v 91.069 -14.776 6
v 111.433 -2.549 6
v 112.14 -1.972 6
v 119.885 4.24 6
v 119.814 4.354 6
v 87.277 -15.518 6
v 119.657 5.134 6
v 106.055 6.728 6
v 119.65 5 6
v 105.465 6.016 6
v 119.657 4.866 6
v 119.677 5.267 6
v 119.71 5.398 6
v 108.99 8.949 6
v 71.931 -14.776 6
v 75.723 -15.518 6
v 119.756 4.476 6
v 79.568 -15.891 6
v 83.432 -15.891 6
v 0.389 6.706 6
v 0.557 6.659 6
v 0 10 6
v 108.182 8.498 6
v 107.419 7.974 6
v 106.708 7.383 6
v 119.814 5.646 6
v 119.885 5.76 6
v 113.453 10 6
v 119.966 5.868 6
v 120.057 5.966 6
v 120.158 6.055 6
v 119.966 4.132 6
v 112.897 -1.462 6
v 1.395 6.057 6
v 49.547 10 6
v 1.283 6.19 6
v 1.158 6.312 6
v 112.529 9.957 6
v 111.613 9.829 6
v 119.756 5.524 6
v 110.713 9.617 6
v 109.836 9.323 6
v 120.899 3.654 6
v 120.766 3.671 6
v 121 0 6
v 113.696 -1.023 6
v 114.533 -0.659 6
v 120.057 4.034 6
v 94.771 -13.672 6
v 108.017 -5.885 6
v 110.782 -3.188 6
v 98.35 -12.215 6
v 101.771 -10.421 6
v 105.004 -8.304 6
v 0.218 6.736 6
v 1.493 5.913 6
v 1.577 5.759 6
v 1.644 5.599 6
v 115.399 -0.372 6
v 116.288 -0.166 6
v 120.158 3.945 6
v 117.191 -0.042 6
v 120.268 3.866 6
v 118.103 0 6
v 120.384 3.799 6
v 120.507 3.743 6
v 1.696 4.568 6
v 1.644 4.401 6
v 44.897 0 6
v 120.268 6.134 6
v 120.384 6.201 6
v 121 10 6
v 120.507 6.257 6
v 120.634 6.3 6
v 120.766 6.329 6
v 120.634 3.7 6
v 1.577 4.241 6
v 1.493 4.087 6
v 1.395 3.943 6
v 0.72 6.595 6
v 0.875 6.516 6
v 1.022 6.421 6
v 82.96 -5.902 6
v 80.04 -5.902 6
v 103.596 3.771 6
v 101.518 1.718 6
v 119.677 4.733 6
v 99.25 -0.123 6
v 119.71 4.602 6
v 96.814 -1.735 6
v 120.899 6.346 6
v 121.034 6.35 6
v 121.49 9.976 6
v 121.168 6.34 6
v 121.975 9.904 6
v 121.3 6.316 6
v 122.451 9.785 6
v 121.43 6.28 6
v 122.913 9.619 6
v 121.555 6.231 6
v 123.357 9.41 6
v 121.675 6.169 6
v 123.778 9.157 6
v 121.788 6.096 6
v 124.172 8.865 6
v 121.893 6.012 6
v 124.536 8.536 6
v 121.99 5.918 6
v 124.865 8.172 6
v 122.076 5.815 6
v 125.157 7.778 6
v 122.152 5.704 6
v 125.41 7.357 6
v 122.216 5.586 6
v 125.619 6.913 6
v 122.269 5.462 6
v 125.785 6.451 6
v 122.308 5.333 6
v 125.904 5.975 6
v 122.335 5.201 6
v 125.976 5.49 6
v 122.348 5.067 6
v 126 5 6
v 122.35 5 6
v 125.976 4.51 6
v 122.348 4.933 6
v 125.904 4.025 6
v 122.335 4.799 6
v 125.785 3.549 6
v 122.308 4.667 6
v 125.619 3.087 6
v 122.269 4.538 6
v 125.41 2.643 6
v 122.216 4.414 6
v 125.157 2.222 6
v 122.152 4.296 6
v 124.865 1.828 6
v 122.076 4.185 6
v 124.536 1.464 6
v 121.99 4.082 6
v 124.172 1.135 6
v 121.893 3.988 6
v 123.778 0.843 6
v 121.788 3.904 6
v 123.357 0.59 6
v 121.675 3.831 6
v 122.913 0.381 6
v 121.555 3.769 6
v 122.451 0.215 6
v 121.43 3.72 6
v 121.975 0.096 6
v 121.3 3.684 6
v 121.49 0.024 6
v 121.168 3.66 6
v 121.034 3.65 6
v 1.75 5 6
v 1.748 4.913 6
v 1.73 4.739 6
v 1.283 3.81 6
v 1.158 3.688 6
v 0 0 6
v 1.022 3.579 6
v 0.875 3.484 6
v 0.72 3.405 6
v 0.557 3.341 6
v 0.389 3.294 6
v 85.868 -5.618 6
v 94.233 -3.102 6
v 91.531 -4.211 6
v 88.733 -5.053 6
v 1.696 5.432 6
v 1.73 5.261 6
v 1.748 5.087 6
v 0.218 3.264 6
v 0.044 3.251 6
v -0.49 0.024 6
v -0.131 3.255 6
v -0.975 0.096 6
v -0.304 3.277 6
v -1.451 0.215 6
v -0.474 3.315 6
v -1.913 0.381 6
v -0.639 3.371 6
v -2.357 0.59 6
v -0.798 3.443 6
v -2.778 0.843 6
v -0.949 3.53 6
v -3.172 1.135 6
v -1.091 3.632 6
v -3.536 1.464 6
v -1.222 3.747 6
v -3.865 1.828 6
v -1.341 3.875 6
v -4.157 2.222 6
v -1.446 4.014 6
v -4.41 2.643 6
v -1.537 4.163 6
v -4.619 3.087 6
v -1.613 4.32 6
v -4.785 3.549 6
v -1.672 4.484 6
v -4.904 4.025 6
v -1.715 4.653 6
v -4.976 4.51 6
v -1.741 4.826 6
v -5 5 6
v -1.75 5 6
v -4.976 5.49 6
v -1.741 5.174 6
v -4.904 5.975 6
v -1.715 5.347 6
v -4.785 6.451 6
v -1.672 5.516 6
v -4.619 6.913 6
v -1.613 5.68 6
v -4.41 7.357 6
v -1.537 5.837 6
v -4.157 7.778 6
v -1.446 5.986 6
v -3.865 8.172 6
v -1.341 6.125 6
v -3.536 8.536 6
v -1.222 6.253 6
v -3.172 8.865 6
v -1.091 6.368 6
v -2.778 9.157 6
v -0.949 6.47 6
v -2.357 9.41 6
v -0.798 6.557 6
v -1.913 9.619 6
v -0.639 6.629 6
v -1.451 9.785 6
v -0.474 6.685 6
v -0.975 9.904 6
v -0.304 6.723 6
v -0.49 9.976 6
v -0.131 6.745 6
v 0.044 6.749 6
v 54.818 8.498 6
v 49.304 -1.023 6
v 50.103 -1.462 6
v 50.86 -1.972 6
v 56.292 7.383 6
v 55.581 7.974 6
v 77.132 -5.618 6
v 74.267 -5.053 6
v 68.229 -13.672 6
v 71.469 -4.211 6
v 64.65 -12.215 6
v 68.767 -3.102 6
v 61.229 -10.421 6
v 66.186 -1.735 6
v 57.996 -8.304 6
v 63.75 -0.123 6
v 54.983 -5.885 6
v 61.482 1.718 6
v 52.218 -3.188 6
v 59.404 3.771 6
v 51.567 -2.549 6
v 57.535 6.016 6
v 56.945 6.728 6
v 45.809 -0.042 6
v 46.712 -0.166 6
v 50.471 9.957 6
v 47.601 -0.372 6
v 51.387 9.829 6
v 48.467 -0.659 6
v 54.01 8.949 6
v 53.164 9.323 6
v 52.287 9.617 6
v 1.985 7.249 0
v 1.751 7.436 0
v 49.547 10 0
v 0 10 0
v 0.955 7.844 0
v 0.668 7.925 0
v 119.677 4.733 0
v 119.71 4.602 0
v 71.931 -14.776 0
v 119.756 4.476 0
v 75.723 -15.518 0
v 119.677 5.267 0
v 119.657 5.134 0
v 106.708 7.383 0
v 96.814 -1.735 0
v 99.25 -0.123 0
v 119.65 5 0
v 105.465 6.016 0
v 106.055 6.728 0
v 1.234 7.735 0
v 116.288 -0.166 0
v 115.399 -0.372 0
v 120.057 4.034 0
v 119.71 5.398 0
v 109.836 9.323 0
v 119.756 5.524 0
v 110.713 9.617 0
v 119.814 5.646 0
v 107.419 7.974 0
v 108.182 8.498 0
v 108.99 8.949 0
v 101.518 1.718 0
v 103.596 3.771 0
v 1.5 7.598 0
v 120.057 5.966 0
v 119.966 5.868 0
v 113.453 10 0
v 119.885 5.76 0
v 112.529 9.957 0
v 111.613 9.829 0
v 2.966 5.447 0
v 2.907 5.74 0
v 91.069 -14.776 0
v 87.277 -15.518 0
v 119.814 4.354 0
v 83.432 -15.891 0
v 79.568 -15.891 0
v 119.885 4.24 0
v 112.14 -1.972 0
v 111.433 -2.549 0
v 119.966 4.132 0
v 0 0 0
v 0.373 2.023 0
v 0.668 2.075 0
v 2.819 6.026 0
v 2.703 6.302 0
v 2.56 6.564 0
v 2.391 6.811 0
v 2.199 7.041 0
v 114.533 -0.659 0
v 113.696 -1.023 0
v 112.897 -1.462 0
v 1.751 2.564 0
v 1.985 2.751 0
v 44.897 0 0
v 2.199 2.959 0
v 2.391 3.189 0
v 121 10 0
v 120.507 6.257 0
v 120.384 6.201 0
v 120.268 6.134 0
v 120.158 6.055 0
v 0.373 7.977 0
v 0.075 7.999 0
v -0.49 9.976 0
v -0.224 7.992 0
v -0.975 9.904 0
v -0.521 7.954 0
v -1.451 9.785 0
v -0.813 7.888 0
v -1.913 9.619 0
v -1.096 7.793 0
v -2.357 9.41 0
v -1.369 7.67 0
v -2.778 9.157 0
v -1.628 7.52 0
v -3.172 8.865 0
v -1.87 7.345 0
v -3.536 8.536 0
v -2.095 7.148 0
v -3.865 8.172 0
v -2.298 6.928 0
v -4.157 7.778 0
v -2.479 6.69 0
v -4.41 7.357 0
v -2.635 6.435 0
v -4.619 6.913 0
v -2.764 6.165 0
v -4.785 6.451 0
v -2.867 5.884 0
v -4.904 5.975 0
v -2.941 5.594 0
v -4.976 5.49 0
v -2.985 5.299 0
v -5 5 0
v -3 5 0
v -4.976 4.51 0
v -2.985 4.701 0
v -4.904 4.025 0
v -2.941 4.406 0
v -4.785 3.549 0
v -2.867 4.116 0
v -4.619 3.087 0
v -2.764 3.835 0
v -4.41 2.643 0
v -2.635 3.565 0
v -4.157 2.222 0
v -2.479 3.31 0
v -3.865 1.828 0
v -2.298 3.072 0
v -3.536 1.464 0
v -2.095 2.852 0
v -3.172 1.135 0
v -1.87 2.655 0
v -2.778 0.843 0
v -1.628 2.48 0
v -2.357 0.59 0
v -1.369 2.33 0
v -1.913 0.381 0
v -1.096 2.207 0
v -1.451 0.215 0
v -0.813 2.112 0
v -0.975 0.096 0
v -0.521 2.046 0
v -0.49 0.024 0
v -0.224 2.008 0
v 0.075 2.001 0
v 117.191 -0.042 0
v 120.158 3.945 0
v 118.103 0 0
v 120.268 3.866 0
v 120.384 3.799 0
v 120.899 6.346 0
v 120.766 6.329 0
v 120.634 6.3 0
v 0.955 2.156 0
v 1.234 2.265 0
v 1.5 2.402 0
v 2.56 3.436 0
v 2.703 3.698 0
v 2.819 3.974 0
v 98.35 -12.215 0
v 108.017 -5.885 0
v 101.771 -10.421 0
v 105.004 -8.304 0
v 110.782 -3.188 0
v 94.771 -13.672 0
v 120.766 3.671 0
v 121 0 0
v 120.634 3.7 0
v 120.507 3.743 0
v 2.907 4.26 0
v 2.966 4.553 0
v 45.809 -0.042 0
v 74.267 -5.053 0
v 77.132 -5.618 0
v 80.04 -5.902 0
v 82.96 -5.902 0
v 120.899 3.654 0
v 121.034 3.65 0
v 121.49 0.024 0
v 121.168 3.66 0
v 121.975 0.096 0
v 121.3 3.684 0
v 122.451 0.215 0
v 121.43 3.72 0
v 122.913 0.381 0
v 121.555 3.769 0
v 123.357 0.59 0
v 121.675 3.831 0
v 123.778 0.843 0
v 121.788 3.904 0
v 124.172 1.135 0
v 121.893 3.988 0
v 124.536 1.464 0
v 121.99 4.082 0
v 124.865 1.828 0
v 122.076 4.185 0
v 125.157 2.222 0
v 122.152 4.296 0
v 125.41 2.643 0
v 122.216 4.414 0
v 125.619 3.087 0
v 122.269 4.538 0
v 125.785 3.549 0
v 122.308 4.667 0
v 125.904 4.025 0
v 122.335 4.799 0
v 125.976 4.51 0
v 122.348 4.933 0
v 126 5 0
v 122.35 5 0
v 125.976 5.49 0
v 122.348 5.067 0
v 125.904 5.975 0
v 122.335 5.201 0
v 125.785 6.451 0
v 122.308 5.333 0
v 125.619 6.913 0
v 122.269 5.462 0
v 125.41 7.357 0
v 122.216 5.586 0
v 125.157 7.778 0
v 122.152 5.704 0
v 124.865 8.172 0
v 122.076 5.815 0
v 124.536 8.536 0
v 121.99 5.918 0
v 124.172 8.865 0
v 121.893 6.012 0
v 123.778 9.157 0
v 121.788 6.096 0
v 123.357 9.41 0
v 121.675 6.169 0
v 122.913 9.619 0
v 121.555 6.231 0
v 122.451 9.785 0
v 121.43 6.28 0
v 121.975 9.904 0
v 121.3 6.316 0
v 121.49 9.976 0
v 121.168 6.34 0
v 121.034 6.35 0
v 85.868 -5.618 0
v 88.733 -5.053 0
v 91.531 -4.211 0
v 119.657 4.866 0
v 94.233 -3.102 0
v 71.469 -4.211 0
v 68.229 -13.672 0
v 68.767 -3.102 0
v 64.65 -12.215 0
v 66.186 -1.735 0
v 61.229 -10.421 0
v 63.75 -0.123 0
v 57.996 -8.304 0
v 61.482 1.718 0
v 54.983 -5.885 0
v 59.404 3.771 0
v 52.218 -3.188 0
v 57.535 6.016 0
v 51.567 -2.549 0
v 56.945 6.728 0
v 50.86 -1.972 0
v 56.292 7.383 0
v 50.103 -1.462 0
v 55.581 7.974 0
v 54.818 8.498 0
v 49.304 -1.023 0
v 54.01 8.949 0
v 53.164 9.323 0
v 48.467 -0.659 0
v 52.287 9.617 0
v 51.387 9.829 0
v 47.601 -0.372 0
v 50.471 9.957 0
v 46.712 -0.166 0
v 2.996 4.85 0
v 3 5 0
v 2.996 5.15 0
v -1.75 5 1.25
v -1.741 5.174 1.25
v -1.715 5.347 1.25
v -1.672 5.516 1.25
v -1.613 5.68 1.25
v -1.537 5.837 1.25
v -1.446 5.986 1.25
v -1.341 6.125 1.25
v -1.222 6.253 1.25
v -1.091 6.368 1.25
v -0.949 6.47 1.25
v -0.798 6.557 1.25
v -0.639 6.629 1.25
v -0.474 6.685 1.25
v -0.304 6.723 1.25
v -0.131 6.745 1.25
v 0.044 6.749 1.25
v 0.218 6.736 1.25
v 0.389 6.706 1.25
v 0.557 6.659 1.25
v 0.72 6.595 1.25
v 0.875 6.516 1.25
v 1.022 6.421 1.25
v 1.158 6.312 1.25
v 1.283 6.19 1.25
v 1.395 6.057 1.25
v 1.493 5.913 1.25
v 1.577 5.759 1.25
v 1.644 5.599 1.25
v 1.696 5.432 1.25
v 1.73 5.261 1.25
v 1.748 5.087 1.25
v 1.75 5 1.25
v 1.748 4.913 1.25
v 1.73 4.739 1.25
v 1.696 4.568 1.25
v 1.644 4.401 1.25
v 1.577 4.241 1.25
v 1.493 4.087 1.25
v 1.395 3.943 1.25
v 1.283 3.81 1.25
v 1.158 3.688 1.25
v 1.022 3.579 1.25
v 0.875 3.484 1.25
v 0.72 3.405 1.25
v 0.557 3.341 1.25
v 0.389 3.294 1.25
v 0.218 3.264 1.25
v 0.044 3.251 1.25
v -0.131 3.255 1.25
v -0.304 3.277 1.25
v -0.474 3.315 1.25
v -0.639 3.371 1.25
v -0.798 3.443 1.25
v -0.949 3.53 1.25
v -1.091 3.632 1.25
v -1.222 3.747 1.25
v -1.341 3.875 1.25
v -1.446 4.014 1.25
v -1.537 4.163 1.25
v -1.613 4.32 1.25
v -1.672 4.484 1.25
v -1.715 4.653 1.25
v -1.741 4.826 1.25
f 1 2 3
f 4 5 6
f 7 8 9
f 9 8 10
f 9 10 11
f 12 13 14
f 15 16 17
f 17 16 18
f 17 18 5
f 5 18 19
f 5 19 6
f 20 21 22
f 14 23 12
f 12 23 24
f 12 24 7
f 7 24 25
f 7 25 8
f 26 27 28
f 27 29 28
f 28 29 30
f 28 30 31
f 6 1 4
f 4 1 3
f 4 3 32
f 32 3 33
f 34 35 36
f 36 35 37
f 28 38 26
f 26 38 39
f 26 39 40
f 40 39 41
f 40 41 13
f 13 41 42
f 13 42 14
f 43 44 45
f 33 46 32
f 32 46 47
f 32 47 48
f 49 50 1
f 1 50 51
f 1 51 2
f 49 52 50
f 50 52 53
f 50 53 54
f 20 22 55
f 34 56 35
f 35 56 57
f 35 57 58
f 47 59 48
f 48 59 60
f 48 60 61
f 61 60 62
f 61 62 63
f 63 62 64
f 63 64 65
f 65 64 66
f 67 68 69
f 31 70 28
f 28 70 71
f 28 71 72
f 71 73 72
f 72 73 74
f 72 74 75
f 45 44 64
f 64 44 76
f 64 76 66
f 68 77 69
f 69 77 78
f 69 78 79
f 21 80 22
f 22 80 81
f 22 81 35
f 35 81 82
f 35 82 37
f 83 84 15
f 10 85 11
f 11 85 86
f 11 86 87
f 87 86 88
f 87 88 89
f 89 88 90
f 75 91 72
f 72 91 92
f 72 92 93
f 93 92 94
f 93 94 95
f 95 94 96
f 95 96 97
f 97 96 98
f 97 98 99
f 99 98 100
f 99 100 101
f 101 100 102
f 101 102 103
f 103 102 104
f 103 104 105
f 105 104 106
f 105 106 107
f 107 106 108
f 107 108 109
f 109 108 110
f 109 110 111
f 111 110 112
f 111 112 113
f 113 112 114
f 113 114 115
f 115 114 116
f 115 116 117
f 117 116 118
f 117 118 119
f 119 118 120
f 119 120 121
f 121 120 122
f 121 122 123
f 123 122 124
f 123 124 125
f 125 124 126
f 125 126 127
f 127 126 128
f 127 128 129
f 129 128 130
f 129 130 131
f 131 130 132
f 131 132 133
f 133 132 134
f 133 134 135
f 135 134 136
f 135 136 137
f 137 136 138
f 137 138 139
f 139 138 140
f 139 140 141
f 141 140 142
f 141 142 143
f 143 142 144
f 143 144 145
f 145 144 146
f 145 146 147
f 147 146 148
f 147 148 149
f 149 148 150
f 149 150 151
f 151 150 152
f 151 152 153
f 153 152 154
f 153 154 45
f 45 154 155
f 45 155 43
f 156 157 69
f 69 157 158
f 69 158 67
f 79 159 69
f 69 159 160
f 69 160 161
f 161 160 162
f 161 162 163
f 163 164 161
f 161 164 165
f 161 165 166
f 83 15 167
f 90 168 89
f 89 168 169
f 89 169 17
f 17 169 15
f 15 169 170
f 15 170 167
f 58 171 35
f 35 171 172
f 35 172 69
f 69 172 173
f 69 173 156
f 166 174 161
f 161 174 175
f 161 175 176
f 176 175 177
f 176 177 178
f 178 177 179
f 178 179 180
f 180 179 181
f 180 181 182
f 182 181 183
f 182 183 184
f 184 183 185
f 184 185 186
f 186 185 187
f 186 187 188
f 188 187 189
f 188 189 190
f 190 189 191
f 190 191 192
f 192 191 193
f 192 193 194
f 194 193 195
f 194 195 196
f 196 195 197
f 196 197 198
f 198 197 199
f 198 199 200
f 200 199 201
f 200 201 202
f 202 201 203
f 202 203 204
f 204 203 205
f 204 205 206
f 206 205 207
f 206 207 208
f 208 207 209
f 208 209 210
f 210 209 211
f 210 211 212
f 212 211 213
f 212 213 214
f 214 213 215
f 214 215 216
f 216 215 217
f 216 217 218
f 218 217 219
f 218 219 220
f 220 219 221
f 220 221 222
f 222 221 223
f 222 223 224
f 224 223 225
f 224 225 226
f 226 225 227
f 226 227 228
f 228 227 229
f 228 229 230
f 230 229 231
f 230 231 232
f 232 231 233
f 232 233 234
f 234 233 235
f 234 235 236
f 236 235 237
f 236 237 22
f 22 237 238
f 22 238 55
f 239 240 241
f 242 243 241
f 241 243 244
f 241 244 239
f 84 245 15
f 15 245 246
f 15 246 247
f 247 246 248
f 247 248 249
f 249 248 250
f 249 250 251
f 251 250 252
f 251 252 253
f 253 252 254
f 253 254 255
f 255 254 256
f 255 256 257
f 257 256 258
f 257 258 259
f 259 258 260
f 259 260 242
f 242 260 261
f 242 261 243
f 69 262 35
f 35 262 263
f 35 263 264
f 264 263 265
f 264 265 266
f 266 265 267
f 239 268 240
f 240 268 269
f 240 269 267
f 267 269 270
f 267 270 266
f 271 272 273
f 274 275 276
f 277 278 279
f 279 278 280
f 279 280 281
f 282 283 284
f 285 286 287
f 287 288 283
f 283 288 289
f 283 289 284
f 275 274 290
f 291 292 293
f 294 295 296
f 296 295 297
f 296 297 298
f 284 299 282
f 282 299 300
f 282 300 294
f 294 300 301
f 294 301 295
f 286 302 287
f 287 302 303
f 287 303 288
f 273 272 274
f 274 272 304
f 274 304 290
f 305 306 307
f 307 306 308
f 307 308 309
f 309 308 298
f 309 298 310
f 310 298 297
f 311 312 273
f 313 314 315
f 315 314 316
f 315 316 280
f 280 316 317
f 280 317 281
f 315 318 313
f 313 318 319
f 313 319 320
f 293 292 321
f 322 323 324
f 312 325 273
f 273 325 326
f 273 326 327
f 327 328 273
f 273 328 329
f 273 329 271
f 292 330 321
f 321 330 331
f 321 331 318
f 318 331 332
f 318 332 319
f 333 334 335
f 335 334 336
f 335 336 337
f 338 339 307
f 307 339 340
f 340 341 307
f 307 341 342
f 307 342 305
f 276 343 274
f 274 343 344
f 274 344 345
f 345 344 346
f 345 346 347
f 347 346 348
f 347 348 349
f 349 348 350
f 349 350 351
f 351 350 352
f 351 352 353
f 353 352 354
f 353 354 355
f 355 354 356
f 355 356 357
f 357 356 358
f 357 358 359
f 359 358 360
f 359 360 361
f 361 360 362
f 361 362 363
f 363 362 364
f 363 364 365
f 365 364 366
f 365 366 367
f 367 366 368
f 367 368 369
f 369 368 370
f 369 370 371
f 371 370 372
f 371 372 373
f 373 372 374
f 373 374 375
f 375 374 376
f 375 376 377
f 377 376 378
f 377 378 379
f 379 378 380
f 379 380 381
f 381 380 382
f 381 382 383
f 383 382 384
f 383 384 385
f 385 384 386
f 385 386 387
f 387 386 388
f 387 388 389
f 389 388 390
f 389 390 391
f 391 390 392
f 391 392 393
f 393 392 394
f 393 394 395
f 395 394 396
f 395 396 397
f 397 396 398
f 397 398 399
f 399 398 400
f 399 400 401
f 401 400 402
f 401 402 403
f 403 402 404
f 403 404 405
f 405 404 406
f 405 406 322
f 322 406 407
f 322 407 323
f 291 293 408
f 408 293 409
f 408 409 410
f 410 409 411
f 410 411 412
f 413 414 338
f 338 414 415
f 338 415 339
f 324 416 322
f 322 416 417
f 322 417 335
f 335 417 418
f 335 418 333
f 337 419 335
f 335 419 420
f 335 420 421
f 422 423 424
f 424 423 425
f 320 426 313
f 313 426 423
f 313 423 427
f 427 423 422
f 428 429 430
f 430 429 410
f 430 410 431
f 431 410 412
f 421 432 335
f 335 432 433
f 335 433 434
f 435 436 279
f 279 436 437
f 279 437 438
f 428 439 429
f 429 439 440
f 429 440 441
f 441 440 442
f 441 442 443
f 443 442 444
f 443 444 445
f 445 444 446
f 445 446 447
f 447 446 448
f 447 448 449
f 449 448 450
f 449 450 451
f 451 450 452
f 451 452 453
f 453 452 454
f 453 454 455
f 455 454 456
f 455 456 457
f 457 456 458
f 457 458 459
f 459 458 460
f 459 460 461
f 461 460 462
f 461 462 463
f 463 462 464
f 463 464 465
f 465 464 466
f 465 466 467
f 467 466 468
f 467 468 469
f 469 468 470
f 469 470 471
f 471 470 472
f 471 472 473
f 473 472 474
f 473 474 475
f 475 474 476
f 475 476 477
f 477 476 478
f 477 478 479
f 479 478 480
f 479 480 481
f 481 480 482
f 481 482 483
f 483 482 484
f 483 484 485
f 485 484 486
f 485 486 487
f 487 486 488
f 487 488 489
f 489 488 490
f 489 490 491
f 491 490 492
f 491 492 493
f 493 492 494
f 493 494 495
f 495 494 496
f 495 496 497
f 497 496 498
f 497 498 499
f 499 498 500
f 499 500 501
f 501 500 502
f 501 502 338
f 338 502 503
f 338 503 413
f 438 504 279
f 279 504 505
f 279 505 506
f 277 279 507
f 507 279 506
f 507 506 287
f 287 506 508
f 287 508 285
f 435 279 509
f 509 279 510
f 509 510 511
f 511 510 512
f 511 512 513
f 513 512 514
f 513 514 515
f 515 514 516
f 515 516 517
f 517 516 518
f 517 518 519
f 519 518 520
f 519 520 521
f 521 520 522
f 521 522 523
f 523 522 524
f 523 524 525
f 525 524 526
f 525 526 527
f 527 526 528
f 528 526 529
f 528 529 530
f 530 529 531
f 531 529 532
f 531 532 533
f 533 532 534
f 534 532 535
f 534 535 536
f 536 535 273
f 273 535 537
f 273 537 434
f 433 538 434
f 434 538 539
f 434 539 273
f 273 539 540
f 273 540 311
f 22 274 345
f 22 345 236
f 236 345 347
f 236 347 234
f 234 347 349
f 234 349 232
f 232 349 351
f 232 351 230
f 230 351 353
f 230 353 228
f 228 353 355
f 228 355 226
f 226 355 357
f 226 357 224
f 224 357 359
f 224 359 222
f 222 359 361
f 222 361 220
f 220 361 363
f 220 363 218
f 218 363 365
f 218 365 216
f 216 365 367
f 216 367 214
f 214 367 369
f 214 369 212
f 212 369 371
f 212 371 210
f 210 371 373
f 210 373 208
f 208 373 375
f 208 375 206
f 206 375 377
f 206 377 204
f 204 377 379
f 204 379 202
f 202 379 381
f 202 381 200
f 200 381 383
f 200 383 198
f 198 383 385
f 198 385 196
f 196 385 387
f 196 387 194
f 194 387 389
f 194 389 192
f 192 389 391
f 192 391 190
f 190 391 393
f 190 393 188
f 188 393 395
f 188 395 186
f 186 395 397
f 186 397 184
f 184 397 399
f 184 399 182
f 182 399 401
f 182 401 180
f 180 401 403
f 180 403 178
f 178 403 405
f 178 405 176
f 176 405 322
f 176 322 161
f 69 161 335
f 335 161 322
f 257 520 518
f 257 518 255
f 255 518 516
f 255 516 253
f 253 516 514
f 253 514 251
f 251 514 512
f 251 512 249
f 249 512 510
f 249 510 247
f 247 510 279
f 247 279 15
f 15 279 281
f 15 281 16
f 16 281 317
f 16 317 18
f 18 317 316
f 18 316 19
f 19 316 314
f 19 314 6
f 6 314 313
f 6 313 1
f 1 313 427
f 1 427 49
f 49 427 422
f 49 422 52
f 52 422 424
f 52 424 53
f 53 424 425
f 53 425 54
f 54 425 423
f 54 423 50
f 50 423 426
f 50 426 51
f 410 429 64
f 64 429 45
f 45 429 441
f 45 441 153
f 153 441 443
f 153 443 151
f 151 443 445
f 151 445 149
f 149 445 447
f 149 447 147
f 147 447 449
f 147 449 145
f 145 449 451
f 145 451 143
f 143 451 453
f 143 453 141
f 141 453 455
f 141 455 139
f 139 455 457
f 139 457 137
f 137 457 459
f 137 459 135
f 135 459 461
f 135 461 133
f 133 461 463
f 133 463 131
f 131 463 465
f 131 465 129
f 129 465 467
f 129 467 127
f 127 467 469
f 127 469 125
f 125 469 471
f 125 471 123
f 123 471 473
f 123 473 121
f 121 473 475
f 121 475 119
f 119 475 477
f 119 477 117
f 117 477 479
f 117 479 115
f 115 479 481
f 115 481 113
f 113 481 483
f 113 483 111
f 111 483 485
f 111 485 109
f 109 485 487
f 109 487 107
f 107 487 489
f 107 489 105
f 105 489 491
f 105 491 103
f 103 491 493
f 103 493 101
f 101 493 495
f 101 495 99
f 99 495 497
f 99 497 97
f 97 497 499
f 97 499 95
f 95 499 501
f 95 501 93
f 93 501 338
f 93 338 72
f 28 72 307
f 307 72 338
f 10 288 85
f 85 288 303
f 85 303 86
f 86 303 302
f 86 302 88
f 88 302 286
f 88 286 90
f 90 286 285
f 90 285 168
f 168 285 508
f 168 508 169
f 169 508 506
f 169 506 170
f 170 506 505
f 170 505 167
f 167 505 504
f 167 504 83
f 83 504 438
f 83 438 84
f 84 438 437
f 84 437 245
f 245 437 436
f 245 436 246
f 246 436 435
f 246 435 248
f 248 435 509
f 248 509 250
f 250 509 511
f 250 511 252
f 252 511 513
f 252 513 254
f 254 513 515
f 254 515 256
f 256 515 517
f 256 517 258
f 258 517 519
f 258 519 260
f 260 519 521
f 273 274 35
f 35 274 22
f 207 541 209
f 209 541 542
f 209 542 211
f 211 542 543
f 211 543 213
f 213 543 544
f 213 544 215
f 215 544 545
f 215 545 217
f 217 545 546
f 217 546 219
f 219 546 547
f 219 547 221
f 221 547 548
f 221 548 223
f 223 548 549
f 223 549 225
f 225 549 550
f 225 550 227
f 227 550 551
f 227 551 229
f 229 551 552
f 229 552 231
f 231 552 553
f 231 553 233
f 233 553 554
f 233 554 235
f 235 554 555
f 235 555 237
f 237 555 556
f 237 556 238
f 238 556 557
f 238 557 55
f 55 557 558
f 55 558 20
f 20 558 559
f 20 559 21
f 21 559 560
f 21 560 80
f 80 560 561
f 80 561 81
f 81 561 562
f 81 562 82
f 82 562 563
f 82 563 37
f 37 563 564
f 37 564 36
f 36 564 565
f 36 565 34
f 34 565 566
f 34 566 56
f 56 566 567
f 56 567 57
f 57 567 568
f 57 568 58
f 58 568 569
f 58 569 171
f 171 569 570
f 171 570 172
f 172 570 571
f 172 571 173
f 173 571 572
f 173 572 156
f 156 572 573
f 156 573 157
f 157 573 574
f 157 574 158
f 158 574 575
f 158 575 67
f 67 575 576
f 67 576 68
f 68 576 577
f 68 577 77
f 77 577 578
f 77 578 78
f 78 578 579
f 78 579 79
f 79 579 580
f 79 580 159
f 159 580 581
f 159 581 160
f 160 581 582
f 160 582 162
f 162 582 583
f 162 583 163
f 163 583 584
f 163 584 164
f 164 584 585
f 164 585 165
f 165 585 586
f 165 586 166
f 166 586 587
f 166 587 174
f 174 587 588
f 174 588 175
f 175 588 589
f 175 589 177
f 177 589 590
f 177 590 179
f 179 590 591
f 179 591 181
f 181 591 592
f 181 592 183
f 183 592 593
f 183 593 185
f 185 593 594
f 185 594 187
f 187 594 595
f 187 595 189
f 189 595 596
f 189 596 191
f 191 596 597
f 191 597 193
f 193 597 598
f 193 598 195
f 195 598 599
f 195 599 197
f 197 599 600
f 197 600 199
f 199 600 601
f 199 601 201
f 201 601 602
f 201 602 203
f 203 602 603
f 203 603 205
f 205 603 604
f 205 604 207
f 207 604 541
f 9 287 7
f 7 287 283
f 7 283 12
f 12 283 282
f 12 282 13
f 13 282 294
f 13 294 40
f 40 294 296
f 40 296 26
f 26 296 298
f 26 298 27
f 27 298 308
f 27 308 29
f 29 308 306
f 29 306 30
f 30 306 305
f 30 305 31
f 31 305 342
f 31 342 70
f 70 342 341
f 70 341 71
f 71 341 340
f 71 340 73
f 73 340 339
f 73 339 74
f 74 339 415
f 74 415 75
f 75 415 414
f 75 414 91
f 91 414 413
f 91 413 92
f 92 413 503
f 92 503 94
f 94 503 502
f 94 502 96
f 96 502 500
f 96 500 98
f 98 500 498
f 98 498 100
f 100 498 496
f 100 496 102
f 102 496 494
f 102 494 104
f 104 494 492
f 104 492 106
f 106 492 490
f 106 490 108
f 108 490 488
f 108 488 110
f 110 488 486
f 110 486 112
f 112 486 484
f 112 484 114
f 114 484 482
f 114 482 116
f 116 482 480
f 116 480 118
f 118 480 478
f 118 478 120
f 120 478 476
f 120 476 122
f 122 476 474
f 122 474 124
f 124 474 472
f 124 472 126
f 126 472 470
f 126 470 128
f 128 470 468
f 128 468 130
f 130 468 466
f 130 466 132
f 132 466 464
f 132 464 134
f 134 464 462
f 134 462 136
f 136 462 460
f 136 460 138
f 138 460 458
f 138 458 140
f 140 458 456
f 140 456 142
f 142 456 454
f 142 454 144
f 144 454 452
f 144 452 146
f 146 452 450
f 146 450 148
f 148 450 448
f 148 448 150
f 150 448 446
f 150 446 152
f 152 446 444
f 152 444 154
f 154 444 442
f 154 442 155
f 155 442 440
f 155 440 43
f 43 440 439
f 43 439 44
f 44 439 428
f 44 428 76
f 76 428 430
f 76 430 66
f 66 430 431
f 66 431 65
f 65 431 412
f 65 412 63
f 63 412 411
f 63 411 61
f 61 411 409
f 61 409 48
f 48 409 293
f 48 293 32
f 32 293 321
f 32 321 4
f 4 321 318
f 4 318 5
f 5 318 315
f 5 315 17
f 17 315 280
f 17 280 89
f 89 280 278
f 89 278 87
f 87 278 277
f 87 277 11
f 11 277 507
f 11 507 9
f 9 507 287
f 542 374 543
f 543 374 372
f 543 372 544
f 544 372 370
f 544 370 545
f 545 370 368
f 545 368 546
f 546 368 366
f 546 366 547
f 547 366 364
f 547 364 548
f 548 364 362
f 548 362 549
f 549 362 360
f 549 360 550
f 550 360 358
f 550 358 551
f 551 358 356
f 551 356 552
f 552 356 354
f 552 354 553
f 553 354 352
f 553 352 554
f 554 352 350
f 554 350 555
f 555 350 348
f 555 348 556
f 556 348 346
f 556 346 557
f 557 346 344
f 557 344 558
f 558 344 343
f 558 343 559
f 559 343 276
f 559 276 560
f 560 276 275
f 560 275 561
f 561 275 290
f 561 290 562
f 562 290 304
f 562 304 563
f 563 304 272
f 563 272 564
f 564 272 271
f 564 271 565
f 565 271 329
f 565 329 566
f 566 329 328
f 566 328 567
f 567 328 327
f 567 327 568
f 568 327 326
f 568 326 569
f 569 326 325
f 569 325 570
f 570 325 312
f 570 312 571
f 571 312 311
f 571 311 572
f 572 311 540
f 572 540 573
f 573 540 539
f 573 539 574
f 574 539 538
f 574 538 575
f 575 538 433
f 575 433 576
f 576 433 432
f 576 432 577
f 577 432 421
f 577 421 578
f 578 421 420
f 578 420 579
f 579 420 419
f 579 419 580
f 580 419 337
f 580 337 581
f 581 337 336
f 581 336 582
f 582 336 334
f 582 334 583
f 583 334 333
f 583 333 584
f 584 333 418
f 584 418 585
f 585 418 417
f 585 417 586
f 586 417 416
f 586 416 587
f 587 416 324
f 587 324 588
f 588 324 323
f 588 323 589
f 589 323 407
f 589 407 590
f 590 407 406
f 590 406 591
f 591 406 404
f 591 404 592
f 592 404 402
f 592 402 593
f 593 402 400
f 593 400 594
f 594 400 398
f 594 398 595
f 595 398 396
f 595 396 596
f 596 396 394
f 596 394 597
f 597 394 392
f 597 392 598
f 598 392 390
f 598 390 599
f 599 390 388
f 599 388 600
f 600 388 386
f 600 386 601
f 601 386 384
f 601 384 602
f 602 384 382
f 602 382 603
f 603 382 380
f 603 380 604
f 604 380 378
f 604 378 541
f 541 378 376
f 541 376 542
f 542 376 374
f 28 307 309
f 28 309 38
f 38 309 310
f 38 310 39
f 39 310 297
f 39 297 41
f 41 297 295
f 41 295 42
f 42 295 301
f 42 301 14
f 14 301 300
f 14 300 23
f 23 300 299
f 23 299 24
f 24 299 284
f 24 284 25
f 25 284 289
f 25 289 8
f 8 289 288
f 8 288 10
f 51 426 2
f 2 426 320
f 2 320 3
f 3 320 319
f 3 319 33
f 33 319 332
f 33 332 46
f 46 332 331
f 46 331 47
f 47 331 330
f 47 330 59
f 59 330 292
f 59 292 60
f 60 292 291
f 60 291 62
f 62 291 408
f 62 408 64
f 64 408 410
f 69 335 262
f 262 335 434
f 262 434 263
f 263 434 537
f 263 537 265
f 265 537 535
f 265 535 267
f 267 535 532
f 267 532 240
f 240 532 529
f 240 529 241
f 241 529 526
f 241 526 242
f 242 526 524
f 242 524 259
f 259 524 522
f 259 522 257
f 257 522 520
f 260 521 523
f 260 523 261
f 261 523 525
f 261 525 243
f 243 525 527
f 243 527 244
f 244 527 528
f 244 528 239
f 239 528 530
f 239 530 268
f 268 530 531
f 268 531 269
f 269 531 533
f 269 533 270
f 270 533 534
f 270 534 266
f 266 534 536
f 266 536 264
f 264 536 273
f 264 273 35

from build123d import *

# Parameters (mm, degrees)
ESQUISSE1_R        = 1.75
ESQUISSE1_R_2      = 1.35
BOSS_EXTRU_1_DEPTH = 6
CHANFREIN1_SIZE    = 1.25
CONG_1_R           = 10


with BuildPart() as part:
    # Esquisse1 → Boss.-Extru.1 (new body)
    with BuildSketch(Plane.XY):
        with BuildLine():
            Line((113.453134084, 0), (121, 0))
            ThreePointArc((121, 0), (126, 5), (121, 10))
            Line((121, 10), (108, 10))
            ThreePointArc((108, 10), (81.5, -5.93763889), (55, 10))
            Line((55, 10), (0, 10))
            ThreePointArc((0, 10), (-5, 5), (0, 0))
            Line((0, 0), (49.546865916, 0))
            ThreePointArc((49.546865916, 0), (81.5, -15.93763889), (113.453134084, 0))
        make_face()
        with Locations((0, 5)):
            Circle(ESQUISSE1_R, mode=Mode.SUBTRACT)
        with Locations((121, 5)):
            Circle(ESQUISSE1_R_2, mode=Mode.SUBTRACT)
    extrude(amount=BOSS_EXTRU_1_DEPTH)

    # Chanfrein1
    chanfrein1_edges = [part.edges().sort_by_distance(p)[0] for p in [
        (-1.75, 5, 0),
    ]]
    chamfer(chanfrein1_edges, length=CHANFREIN1_SIZE)

    # Congé1
    cong_1_edges = [part.edges().sort_by_distance(p)[0] for p in [
        (55, 10, 3),
        (108, 10, 3),
        (113.453134084, 0, 3),
        (49.546865916, 0, 3),
    ]]
    fillet(cong_1_edges, radius=CONG_1_R)


solid = part.part
